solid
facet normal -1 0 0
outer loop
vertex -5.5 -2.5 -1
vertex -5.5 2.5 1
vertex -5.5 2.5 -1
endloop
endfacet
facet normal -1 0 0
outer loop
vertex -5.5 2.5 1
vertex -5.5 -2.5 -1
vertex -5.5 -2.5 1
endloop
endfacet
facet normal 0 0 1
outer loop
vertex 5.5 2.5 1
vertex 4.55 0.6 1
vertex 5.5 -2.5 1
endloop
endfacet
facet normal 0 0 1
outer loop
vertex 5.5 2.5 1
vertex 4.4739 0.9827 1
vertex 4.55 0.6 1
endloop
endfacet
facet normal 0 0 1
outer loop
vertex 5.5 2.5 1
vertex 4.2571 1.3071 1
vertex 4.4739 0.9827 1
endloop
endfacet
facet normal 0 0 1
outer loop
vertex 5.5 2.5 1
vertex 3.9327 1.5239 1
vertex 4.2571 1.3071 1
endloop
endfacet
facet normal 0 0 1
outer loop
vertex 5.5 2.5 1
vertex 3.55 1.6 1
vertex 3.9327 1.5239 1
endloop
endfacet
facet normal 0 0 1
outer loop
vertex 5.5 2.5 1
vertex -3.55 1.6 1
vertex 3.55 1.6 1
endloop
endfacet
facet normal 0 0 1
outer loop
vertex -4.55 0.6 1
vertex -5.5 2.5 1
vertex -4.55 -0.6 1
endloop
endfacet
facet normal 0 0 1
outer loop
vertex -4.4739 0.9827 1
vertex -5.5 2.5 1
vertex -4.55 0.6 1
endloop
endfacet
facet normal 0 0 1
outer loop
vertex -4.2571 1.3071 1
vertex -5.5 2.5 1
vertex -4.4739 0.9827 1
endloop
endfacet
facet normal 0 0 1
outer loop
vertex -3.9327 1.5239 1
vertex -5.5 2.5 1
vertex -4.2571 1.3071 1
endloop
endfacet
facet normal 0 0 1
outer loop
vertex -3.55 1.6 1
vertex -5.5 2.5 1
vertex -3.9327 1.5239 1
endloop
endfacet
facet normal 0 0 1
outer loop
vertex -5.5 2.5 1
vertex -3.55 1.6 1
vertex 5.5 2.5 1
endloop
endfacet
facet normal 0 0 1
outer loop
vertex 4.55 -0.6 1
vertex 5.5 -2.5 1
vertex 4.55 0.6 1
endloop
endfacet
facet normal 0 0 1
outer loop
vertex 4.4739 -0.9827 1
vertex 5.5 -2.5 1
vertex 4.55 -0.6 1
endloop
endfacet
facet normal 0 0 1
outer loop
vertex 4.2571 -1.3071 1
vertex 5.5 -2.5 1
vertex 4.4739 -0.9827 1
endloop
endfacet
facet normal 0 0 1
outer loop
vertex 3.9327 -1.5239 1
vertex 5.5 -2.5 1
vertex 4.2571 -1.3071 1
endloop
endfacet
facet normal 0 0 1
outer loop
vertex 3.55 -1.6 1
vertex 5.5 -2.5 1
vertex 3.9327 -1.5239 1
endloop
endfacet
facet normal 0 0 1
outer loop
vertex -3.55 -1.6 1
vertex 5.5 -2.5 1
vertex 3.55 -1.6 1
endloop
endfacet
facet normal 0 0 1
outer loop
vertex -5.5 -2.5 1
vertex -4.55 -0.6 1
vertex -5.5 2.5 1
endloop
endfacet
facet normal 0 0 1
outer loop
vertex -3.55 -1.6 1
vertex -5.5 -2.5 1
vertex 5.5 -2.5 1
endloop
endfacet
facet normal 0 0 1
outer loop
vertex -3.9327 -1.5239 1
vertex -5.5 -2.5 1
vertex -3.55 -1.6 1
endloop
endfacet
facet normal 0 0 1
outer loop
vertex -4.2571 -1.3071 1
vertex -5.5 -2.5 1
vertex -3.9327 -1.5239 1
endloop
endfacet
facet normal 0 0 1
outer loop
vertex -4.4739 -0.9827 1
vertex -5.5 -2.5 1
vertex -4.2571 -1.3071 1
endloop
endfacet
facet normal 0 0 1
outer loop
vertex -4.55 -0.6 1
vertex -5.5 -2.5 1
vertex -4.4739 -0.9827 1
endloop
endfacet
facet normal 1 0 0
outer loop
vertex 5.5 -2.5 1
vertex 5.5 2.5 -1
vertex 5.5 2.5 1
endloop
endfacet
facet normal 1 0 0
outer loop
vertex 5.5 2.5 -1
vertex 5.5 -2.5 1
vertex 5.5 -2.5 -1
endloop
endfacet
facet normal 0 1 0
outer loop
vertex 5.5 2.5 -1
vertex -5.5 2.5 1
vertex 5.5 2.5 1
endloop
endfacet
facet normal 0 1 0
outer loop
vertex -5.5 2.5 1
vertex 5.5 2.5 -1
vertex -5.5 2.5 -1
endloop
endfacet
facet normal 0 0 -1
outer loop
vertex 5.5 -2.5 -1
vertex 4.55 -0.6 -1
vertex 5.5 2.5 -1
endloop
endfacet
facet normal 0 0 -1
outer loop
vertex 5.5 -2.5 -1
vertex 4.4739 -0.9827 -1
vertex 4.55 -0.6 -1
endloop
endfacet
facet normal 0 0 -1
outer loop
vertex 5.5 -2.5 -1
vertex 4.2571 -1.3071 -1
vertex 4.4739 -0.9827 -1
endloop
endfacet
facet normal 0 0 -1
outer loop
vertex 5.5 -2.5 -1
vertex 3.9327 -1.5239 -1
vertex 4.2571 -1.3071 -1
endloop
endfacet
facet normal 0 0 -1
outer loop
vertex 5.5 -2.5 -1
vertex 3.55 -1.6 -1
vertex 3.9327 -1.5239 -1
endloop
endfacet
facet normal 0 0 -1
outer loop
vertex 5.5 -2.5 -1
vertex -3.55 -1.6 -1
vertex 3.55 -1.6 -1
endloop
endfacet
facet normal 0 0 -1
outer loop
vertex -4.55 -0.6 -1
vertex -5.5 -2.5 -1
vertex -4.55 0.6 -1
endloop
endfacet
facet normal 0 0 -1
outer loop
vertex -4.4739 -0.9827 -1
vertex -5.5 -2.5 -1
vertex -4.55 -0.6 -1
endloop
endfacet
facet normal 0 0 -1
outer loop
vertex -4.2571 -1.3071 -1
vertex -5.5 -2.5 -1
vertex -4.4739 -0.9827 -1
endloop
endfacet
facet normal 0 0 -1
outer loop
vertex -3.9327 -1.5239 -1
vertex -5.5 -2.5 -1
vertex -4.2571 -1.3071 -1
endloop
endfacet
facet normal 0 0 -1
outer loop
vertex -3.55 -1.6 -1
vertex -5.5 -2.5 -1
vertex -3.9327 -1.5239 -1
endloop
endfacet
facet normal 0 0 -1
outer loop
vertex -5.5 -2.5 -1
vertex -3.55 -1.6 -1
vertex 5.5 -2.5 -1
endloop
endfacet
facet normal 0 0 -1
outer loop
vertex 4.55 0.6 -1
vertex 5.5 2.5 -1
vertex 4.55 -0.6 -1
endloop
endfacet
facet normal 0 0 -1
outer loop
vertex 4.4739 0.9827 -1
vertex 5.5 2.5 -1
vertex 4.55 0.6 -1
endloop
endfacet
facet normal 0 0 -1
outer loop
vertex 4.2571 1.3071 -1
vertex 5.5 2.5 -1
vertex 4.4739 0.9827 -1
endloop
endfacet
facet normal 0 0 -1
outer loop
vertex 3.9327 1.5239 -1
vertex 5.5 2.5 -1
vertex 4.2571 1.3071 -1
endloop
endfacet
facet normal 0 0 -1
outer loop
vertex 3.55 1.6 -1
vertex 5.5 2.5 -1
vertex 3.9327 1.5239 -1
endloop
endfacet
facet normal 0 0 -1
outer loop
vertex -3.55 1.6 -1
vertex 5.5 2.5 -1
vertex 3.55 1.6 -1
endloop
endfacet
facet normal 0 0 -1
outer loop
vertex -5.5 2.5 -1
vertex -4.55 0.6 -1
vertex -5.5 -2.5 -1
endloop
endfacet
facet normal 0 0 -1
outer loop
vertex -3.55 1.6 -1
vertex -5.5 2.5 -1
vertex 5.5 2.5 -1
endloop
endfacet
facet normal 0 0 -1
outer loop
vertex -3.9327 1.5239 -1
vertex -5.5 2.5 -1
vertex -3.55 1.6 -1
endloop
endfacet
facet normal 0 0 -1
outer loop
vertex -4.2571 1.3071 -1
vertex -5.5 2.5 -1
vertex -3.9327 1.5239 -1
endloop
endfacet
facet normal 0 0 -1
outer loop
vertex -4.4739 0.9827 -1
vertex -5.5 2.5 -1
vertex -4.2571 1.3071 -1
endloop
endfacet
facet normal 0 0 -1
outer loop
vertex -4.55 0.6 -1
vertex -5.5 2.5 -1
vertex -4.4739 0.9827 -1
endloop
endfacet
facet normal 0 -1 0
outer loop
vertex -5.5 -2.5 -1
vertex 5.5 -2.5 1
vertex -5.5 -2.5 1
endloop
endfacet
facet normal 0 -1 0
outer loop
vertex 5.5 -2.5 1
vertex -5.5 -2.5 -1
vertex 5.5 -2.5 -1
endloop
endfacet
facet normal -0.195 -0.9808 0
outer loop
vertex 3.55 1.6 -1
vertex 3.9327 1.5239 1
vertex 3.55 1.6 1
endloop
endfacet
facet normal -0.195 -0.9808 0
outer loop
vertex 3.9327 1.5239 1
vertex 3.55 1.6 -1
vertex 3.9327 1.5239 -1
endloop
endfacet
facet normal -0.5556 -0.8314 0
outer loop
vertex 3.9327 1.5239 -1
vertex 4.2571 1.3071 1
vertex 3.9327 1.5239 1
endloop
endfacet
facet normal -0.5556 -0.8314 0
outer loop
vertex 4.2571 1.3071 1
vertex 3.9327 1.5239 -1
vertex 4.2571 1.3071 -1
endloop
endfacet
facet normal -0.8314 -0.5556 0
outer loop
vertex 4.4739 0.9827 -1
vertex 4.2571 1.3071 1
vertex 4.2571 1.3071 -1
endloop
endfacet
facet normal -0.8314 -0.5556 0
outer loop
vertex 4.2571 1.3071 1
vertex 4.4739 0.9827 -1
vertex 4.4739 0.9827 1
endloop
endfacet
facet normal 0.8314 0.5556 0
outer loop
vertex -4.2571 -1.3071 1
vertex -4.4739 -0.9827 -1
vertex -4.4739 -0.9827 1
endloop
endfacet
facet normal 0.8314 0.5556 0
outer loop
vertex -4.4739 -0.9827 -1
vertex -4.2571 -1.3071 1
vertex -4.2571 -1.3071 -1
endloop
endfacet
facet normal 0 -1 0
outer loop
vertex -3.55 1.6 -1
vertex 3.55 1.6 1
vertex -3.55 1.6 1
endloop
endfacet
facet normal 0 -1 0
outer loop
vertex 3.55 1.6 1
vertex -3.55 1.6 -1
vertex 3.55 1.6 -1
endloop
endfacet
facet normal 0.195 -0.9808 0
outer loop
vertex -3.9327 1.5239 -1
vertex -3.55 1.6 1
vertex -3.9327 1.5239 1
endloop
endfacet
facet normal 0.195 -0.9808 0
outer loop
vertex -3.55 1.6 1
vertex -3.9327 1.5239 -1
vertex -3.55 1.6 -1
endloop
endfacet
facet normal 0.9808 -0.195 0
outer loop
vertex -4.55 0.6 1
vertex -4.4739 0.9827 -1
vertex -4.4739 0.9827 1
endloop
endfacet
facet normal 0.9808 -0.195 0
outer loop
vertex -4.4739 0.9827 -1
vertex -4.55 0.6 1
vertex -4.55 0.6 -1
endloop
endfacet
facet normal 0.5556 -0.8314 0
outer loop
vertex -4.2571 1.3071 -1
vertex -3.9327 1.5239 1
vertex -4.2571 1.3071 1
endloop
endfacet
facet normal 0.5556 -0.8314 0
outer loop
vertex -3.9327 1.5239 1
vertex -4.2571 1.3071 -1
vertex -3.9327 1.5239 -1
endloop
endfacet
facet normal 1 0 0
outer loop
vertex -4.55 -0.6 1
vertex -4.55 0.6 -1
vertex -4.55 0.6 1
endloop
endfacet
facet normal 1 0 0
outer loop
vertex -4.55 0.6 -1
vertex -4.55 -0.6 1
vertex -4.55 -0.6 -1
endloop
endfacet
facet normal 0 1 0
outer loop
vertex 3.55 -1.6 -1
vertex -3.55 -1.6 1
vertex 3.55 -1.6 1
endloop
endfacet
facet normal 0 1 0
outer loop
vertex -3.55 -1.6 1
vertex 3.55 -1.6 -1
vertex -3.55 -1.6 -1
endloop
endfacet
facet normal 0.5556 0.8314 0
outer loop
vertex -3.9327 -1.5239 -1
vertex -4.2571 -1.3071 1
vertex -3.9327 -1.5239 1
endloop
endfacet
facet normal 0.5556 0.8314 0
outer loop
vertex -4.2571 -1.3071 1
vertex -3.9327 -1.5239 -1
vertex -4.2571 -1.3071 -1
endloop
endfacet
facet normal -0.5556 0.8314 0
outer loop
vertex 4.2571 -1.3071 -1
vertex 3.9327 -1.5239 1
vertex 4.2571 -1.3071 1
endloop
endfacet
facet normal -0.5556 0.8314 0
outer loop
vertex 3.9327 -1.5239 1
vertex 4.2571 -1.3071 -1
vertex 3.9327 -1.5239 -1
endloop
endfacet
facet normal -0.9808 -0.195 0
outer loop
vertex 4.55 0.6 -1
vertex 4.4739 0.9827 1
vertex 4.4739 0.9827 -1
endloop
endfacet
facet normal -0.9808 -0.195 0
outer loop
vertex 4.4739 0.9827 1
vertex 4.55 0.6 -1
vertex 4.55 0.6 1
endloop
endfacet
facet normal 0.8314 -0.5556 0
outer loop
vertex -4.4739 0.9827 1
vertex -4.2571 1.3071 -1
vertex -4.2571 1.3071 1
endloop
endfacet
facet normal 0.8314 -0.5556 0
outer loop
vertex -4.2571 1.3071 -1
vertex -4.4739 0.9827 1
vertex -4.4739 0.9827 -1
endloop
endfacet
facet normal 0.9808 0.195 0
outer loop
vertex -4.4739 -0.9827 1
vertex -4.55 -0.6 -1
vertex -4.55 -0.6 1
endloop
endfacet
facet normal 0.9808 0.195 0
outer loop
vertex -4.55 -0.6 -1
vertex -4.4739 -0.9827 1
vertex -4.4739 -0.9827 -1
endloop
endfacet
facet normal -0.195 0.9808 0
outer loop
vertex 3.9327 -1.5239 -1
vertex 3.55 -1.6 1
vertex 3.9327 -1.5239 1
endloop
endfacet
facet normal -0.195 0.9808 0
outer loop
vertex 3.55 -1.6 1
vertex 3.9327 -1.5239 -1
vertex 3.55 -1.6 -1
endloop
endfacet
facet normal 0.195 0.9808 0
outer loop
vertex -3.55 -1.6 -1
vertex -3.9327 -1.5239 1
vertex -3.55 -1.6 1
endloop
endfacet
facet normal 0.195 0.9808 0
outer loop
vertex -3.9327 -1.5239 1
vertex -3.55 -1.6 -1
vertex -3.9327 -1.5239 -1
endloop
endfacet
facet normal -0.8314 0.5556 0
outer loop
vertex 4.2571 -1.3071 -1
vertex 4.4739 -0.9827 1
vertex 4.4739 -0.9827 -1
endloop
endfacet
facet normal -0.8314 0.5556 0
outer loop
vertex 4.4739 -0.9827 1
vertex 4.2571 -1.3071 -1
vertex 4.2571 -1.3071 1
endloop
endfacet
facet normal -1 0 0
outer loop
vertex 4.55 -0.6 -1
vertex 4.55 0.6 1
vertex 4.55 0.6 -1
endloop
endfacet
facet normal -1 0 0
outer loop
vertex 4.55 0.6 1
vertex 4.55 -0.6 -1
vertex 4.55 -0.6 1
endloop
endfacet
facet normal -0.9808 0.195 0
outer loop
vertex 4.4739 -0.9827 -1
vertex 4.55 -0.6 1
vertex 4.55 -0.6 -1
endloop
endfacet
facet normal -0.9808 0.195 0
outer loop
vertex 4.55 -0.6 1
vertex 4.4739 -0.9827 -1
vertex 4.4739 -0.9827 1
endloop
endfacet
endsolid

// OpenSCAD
$fa = 0.4;
$fs = 0.4;


difference() {
	cube(center = true, size = [11, 5, 2]);
	minkowski() {
		cube(center = true, size = [ 7.1, 1.2,10. ]);
		cylinder(h = 0.0100000000, r = 1);
	}
}
